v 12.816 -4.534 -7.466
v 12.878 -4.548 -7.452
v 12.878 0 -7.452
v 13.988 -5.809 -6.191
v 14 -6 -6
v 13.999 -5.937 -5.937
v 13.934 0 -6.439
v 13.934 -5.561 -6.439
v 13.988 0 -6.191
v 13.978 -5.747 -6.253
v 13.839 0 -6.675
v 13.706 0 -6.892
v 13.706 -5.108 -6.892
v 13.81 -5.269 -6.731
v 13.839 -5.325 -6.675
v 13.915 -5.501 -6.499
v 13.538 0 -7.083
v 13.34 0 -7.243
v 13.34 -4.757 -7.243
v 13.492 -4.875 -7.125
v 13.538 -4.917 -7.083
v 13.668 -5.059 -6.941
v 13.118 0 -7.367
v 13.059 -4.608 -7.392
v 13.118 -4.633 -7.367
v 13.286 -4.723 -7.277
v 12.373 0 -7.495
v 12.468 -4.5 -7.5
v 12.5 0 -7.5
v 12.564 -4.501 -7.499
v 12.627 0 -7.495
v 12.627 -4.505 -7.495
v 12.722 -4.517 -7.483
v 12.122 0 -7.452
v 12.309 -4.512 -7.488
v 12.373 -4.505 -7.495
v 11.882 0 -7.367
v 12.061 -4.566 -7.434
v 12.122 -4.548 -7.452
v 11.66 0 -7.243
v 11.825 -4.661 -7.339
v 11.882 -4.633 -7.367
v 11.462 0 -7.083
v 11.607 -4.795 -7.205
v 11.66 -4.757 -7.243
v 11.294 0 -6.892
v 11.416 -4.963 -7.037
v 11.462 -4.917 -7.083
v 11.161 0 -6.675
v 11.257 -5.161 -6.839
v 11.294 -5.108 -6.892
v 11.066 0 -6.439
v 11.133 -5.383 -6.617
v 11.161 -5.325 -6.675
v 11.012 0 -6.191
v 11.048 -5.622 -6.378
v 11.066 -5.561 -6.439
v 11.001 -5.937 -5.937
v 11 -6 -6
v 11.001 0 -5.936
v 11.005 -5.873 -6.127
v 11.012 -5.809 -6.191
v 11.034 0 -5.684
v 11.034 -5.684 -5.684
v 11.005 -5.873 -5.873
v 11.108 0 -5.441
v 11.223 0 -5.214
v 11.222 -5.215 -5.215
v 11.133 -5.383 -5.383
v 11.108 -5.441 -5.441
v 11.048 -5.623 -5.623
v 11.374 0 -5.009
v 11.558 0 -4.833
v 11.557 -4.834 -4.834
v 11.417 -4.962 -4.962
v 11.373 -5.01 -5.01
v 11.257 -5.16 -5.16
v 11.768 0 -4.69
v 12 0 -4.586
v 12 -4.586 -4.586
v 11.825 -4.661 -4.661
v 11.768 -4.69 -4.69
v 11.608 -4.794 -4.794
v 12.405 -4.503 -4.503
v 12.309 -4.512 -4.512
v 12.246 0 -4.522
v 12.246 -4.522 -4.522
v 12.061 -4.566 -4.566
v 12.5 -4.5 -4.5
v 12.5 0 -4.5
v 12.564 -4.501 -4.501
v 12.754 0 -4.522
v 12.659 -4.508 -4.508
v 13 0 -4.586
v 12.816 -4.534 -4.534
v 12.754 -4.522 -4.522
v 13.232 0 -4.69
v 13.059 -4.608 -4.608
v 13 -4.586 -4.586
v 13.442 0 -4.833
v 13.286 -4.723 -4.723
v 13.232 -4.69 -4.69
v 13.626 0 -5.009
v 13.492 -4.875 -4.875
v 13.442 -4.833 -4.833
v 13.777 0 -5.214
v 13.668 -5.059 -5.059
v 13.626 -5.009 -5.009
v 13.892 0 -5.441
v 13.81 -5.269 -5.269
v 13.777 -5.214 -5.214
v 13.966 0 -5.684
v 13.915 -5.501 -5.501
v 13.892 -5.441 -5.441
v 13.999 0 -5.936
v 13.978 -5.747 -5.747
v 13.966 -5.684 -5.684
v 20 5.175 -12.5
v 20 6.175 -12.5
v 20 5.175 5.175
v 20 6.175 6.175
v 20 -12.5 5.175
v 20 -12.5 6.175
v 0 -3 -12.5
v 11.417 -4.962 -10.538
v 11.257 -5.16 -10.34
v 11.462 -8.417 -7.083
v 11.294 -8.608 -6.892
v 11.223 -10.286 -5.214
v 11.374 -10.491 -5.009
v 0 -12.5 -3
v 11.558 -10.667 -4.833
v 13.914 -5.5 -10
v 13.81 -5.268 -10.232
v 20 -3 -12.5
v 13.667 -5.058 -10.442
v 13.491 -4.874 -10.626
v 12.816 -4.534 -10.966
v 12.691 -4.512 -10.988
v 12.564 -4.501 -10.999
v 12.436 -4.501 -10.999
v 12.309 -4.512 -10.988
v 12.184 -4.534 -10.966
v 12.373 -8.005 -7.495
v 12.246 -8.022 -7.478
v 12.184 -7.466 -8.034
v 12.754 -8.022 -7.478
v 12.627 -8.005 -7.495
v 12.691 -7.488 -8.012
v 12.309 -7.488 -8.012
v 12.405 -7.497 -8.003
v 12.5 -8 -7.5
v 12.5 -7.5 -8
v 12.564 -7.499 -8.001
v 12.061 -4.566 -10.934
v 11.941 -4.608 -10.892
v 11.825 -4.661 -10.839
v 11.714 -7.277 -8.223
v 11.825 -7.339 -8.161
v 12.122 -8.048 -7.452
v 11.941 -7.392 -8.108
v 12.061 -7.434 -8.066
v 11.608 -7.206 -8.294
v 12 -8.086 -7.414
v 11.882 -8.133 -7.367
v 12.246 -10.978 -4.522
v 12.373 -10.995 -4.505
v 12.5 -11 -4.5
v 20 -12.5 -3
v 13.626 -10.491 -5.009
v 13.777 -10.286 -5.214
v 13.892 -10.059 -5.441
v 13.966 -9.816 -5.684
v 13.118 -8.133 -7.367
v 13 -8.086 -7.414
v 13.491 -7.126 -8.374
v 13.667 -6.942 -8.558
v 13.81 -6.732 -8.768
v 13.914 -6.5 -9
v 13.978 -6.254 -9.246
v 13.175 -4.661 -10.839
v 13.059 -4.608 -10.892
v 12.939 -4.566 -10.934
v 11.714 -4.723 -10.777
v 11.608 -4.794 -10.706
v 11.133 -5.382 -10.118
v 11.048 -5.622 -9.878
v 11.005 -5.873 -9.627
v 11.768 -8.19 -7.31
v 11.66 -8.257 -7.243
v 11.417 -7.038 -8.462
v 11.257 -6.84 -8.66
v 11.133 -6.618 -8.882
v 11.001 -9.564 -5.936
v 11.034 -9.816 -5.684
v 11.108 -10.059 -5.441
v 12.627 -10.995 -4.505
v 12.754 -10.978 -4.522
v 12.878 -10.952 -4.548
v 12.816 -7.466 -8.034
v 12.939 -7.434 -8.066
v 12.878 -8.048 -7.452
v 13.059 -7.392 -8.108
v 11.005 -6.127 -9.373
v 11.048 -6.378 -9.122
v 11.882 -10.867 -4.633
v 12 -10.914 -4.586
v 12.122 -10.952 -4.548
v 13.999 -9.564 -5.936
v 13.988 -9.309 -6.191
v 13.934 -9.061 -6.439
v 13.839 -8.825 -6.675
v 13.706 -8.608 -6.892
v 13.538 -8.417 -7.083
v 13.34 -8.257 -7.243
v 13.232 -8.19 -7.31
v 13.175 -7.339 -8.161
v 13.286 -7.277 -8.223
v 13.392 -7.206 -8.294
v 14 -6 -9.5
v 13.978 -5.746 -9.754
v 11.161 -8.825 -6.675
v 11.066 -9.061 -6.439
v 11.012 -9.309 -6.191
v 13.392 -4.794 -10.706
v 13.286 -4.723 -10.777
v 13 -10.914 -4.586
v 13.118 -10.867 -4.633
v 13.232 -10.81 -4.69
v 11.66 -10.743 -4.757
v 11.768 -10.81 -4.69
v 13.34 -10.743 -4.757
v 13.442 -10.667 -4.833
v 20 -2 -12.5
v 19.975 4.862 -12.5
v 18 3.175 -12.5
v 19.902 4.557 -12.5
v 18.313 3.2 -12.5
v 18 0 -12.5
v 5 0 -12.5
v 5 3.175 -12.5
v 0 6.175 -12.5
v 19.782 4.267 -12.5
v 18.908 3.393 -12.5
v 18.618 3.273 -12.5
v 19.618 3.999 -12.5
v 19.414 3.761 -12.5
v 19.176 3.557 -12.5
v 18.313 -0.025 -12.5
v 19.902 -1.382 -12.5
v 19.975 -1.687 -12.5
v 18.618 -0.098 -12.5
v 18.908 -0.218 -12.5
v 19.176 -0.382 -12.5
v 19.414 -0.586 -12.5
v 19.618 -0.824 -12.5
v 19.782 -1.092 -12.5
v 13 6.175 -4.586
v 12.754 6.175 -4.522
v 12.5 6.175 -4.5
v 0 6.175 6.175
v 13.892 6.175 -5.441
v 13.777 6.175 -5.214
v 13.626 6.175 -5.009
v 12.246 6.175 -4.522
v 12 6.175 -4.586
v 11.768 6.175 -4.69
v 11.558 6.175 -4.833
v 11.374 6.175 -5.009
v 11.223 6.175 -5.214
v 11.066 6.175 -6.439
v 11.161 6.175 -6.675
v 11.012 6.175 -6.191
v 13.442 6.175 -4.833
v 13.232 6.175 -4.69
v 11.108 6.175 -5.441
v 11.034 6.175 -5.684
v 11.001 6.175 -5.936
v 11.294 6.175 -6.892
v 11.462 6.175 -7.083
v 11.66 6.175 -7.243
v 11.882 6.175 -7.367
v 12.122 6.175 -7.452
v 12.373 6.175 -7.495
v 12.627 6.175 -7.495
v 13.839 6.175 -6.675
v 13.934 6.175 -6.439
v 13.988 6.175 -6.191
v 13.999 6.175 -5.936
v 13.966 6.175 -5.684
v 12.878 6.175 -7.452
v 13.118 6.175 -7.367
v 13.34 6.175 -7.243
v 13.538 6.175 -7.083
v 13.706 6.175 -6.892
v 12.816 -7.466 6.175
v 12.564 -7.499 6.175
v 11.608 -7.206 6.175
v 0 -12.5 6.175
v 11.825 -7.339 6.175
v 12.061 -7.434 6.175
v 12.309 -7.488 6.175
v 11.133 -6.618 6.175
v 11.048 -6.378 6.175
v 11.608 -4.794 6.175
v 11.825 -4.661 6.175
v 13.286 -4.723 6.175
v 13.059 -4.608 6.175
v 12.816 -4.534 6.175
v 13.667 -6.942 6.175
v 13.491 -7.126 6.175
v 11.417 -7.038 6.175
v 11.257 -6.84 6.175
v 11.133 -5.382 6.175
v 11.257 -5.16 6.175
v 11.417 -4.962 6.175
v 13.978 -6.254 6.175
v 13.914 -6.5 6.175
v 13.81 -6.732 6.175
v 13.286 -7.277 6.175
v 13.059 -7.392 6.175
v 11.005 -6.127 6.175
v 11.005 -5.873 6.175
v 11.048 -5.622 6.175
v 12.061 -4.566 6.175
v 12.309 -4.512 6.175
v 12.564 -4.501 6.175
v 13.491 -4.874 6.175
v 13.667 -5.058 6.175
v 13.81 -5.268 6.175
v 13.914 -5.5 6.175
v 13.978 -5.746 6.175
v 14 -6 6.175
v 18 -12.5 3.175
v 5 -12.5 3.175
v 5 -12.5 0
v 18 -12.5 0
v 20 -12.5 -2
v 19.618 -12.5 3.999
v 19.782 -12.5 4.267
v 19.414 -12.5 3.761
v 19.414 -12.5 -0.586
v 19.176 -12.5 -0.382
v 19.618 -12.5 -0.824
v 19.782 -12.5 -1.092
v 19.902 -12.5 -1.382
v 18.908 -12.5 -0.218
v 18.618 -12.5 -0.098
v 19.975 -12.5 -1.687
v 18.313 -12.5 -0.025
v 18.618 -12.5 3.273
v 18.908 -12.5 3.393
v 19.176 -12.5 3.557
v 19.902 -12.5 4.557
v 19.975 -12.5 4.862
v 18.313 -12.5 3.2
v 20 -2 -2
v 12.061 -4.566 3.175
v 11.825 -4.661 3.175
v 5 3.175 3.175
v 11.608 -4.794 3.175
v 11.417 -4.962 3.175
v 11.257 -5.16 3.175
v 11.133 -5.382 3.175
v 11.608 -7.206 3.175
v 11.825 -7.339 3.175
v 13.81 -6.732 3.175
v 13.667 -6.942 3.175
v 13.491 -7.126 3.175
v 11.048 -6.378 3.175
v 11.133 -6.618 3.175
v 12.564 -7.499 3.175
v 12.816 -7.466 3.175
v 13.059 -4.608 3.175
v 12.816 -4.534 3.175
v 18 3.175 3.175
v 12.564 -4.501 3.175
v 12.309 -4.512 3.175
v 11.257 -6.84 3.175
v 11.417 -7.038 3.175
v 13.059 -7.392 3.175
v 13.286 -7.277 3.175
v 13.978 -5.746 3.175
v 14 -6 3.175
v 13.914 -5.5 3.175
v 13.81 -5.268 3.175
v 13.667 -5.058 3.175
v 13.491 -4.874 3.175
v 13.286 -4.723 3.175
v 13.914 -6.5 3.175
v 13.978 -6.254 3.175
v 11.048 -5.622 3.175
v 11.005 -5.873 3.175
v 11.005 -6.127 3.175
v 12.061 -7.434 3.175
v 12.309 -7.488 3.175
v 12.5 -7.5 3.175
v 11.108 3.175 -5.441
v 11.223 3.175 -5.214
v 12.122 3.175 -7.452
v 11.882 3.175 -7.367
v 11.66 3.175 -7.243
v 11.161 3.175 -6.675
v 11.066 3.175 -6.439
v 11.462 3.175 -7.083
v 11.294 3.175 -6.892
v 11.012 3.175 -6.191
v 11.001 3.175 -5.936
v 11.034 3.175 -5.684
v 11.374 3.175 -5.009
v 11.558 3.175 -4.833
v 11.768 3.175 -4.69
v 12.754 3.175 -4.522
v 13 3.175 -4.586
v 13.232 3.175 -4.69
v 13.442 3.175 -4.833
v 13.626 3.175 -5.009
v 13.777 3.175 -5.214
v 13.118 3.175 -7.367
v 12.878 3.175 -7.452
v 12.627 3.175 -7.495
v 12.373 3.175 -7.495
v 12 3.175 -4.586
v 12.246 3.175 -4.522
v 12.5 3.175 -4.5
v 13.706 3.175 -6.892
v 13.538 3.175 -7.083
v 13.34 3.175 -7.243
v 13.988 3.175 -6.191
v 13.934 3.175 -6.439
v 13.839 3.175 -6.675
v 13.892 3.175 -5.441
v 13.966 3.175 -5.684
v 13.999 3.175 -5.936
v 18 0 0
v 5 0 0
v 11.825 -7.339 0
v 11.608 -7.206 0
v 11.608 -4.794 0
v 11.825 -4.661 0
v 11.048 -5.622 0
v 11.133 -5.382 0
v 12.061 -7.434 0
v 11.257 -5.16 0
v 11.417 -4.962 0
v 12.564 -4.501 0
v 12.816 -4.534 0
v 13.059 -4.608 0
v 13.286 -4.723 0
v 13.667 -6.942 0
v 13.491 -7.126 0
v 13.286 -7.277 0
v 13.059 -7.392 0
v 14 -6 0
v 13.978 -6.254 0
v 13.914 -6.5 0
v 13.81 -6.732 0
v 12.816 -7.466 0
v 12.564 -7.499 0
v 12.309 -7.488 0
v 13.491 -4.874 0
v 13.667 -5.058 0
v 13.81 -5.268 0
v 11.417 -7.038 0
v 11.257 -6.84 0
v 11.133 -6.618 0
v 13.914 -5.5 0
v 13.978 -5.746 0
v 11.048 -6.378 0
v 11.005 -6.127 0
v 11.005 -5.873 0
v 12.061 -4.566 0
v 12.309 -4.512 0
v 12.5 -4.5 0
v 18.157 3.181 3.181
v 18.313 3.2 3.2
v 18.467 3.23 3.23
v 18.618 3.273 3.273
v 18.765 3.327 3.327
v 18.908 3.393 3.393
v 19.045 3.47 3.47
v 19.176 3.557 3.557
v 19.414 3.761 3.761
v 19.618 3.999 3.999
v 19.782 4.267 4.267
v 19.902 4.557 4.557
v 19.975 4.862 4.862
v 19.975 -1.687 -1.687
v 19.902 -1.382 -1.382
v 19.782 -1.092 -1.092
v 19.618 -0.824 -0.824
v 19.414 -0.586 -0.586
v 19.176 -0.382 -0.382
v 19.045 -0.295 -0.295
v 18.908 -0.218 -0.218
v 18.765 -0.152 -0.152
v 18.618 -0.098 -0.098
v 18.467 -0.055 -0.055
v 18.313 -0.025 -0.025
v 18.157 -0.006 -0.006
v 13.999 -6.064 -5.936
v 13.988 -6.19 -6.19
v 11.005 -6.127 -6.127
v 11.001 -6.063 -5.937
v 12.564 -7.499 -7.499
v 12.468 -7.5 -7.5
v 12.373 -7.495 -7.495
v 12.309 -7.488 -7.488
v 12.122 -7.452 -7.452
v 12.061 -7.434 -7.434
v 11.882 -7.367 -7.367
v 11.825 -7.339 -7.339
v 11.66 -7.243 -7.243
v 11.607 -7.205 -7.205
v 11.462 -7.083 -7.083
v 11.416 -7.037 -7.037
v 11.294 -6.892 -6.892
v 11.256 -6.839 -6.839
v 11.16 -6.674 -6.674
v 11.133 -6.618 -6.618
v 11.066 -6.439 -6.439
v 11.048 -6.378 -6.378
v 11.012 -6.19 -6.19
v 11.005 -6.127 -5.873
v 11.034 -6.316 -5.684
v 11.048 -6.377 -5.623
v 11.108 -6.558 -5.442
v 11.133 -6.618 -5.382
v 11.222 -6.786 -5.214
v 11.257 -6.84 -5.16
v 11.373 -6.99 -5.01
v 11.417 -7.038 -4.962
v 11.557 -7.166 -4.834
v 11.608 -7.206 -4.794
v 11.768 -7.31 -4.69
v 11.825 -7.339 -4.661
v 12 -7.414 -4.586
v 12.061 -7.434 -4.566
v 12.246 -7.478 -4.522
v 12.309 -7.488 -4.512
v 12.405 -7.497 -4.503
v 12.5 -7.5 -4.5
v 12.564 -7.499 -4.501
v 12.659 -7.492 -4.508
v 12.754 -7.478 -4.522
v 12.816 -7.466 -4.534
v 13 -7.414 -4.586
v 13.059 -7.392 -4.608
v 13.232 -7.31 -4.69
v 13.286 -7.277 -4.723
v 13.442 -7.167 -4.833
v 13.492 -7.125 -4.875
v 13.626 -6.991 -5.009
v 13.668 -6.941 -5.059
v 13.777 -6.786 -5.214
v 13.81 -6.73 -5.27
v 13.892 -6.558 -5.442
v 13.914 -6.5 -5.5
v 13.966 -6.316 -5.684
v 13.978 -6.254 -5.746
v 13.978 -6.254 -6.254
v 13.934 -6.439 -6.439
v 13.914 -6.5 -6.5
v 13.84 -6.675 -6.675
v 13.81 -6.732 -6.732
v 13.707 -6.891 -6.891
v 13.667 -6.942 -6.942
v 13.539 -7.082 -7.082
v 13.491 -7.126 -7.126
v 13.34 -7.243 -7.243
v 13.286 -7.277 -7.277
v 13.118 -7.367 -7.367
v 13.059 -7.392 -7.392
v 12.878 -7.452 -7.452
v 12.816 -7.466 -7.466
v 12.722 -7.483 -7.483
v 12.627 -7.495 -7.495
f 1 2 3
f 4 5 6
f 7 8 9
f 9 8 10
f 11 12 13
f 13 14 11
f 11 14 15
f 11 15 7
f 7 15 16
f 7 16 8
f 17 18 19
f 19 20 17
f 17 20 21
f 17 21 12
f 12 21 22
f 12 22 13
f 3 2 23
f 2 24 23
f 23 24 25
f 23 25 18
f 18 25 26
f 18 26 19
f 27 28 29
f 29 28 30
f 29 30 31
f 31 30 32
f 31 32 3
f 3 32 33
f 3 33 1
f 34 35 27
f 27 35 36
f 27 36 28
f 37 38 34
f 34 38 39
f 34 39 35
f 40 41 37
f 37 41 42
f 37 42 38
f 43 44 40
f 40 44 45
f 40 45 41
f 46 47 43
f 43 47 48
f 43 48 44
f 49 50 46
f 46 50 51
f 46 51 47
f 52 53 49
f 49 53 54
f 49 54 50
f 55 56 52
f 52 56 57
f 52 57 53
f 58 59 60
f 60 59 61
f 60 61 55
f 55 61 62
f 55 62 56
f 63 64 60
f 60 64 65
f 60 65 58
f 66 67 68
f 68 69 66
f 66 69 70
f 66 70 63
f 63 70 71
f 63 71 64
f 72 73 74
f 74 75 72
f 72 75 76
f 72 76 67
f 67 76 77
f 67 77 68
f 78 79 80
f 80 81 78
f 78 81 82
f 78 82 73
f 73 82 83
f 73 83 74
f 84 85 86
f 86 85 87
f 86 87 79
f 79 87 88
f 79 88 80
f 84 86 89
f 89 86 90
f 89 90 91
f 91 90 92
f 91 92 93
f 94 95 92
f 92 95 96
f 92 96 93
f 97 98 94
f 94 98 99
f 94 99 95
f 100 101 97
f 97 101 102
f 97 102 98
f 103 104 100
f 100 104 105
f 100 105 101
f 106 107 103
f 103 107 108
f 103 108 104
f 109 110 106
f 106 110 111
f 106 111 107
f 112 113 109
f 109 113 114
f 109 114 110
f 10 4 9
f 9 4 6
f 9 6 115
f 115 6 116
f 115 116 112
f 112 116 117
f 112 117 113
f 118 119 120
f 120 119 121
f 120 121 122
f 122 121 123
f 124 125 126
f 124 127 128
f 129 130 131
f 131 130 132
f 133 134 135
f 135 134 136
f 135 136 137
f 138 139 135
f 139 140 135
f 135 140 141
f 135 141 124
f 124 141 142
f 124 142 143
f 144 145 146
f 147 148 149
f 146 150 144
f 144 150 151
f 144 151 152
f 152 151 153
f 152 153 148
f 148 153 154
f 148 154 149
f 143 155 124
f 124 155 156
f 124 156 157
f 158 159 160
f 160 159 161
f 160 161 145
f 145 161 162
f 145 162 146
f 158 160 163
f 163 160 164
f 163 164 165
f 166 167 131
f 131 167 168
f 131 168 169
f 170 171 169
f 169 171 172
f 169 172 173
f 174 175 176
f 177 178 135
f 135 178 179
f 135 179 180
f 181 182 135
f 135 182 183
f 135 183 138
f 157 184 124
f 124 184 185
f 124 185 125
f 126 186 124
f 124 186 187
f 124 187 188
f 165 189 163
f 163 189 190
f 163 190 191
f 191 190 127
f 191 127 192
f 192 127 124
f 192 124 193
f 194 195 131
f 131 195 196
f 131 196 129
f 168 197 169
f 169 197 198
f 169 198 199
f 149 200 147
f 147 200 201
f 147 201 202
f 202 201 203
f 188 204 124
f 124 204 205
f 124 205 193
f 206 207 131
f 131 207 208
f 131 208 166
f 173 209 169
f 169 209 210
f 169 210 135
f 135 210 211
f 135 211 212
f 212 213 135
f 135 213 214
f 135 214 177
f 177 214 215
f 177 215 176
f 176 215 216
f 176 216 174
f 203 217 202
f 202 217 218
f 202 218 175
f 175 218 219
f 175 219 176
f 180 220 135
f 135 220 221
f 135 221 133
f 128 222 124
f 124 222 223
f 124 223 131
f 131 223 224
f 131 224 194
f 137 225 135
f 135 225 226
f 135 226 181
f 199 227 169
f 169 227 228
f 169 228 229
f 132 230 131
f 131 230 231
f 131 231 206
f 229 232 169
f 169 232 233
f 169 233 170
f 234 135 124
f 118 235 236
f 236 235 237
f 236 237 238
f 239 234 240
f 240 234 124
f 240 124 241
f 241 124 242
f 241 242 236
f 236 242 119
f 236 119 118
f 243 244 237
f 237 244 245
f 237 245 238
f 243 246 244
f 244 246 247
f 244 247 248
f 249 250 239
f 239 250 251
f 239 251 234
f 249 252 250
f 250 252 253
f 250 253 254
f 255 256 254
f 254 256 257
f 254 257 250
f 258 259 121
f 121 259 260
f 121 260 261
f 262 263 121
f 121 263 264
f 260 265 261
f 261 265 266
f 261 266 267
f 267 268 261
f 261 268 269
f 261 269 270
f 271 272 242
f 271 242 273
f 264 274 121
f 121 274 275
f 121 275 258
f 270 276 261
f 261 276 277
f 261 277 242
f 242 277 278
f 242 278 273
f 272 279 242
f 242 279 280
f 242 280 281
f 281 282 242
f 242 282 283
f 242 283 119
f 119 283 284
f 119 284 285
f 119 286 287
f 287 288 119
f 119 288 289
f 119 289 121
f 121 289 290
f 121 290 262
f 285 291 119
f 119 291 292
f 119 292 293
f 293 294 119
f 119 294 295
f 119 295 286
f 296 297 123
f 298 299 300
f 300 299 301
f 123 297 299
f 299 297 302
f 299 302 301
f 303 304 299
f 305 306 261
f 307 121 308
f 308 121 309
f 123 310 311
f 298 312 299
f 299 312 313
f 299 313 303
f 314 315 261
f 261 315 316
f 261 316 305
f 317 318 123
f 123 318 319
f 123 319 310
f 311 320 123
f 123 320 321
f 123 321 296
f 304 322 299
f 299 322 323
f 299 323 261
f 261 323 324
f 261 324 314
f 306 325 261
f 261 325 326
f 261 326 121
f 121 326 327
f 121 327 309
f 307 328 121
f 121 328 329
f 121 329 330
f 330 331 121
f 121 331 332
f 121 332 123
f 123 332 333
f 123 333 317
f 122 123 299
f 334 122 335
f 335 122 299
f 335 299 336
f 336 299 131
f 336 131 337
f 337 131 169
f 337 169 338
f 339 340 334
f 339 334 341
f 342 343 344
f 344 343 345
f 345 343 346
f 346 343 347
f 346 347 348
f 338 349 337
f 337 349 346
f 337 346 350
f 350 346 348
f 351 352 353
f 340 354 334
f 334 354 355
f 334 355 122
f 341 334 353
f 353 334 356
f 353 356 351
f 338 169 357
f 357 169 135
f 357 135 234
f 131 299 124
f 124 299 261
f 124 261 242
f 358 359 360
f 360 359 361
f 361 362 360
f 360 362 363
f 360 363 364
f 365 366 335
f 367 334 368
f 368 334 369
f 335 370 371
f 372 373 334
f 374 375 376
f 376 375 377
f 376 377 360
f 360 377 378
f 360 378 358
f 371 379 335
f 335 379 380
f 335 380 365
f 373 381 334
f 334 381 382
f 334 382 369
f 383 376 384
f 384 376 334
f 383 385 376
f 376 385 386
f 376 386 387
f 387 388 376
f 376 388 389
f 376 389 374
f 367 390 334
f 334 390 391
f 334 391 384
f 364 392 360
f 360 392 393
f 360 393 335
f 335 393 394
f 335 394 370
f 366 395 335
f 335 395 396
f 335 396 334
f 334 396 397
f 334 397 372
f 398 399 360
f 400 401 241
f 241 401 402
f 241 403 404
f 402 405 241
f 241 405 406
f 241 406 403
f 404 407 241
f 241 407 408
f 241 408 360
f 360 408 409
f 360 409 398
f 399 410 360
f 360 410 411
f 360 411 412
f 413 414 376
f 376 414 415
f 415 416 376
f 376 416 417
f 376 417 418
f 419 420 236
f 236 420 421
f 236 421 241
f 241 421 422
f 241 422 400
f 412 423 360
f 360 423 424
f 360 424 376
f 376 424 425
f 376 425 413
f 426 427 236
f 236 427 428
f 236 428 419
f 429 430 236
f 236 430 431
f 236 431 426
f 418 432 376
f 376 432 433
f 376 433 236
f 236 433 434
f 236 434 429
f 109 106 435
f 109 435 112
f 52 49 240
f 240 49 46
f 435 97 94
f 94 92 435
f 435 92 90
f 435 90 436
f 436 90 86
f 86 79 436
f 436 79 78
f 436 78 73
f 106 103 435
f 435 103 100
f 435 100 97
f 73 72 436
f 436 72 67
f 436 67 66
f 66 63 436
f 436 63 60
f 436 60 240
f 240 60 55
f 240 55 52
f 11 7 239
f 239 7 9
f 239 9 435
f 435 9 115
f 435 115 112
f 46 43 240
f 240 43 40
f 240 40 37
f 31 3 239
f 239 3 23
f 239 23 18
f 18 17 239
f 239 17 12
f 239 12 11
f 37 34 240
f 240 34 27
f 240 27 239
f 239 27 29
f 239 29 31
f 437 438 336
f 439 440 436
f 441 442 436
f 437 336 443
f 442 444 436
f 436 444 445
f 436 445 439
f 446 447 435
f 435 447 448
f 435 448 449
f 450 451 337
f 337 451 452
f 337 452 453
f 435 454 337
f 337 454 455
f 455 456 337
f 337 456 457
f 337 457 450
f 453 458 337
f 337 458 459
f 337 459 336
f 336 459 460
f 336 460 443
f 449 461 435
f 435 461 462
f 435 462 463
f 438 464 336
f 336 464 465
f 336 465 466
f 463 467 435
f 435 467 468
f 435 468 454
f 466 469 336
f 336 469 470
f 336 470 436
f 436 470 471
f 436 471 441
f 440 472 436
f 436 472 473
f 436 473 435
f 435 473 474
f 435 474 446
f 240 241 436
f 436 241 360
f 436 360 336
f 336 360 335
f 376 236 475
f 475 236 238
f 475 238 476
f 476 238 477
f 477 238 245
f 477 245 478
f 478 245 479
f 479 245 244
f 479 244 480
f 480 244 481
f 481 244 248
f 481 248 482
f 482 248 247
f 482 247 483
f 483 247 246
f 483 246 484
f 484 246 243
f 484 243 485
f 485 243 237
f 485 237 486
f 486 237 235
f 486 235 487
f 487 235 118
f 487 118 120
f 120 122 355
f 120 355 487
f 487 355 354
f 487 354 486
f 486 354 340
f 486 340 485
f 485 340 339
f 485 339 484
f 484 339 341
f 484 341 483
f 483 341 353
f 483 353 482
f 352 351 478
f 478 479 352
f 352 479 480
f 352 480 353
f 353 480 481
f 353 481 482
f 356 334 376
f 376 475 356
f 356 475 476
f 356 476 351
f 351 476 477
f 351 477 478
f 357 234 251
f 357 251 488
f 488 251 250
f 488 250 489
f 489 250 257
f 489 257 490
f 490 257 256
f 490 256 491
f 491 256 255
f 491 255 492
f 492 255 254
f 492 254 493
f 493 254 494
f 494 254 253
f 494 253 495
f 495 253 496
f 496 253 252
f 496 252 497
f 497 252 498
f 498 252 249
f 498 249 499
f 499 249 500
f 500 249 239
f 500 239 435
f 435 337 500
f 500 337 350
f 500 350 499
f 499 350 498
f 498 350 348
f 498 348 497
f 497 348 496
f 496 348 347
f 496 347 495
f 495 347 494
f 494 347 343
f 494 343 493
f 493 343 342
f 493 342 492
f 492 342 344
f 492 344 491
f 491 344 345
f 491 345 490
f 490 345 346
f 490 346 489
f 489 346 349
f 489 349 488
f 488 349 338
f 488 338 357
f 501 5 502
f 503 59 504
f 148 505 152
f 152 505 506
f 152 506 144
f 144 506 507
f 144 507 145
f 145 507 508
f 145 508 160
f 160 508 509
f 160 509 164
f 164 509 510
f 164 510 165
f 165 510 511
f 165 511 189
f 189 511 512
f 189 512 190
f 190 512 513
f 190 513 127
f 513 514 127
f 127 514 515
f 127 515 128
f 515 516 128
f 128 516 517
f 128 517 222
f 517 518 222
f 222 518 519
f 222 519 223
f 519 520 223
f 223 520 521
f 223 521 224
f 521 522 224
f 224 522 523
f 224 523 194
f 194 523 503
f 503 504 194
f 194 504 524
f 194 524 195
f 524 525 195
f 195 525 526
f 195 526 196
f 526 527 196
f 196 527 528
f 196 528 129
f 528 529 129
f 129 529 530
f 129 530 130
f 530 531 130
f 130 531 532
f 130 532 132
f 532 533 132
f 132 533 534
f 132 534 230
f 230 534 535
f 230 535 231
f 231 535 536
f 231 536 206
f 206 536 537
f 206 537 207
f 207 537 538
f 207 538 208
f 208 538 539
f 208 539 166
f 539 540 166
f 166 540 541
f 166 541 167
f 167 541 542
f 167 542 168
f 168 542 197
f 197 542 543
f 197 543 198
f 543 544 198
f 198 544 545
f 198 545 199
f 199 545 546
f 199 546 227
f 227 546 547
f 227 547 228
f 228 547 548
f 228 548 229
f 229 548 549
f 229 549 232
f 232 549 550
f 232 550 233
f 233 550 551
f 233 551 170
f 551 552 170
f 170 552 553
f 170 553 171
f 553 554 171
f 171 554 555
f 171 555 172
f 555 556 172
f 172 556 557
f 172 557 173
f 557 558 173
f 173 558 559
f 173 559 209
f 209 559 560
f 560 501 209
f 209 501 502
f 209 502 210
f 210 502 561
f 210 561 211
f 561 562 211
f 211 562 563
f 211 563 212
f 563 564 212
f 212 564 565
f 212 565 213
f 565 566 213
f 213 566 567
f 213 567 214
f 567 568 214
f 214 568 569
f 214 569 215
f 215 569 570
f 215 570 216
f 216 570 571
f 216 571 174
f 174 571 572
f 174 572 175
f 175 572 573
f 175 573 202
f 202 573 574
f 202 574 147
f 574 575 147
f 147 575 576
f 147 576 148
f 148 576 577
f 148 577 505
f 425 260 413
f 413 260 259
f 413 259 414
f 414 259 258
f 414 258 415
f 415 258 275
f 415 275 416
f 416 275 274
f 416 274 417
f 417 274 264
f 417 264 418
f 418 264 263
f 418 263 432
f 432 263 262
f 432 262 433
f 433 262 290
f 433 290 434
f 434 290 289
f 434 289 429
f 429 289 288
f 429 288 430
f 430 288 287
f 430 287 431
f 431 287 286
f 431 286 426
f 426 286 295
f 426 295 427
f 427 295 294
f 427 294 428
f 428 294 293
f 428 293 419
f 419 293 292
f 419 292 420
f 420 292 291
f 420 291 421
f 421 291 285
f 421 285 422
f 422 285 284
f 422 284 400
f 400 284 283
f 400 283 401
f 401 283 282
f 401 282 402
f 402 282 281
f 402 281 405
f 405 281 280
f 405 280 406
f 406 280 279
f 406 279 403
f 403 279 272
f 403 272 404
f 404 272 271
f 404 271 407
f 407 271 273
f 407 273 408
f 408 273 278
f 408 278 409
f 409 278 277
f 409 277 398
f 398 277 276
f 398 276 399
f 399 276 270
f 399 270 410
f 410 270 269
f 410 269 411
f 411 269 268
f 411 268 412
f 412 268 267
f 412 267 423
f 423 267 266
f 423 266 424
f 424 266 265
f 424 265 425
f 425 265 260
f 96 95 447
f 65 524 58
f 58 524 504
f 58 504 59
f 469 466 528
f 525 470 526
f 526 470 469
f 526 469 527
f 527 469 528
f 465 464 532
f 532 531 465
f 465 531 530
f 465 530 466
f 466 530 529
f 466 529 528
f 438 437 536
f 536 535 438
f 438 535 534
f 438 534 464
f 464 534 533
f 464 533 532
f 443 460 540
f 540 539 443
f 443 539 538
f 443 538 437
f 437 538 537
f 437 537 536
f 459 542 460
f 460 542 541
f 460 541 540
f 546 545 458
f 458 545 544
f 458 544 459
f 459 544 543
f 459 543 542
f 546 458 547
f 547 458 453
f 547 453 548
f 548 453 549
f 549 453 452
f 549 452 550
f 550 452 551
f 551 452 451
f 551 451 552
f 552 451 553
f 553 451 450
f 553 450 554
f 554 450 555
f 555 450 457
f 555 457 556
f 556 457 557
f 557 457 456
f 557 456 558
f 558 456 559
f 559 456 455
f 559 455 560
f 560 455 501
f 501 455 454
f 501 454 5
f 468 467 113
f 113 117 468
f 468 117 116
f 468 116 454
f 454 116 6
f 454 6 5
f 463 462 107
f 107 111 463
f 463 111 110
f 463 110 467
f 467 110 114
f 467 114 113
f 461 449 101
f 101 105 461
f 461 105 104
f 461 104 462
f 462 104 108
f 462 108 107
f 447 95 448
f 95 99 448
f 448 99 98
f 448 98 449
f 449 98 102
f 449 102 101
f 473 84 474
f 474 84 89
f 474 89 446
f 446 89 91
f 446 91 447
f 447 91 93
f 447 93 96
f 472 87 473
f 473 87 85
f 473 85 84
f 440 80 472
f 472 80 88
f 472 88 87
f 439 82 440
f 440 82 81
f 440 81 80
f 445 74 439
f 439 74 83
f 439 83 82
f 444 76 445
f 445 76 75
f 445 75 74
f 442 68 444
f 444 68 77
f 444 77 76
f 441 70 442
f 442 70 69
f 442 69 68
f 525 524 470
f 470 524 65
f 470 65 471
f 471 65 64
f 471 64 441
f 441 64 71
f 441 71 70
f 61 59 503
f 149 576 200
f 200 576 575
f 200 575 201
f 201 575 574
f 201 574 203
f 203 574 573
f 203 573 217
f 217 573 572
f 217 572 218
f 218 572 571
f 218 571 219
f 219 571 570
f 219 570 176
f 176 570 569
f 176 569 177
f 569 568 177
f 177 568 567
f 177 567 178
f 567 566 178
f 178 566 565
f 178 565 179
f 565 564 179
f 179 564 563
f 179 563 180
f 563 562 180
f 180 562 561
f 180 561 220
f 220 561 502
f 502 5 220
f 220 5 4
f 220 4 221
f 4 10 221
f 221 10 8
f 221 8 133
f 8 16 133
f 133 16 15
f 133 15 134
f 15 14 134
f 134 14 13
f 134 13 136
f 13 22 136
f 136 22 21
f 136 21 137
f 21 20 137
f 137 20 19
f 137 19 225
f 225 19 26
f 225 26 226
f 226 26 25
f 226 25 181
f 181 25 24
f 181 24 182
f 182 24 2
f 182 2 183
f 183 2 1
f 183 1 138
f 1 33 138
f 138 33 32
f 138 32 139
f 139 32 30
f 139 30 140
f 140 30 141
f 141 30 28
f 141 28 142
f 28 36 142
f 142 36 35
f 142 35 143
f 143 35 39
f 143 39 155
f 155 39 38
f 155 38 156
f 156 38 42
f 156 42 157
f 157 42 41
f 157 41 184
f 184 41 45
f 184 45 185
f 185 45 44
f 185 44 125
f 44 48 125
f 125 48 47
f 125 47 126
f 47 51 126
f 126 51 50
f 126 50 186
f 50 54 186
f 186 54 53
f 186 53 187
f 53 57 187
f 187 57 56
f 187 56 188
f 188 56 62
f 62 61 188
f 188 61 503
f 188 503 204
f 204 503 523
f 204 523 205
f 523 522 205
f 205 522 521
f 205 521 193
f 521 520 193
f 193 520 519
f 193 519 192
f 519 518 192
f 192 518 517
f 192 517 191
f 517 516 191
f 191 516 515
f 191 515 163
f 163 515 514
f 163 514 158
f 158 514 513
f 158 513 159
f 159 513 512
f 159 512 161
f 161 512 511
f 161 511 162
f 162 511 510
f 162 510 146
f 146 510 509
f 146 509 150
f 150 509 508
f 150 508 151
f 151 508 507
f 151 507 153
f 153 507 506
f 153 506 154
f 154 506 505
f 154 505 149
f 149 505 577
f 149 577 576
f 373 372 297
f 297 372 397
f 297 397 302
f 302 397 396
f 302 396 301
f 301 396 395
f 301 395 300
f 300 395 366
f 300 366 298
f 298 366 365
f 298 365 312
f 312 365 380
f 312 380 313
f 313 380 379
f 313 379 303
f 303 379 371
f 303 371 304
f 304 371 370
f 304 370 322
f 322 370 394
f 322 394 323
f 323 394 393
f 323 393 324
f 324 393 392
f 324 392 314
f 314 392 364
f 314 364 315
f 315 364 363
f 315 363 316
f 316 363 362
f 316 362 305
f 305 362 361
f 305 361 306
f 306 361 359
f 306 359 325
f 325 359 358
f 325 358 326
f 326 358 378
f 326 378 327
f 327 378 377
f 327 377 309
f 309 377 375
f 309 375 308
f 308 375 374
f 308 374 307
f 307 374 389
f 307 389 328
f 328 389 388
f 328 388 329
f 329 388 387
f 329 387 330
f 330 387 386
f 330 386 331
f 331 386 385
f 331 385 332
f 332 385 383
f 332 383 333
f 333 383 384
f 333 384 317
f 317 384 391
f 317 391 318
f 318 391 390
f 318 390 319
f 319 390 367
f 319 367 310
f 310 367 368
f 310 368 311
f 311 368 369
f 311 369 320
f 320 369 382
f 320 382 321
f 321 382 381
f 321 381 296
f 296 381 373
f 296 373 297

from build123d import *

# Parameters (mm, degrees)
BOSS_EXTRUDE1_DEPTH = 20
CUT_EXTRUDE1_DEPTH  = 15
FILLET1_R           = 2
SKETCH3_R           = 1.5
CUT_EXTRUDE2_DEPTH  = 31.083311404
SKETCH4_R           = 1.5
CUT_EXTRUDE3_DEPTH  = 31.083311404


with BuildPart() as part:
    # Sketch1 → Boss-Extrude1 (new body)
    with BuildSketch(Plane(origin=(0, 0, 0), x_dir=(0, 0, -1), z_dir=(1, 0, 0))):
        Polygon((0, -12.5), (-3.175, -12.5), (-6.175, -12.5), (-6.175, 6.175), (12.5, 6.175), (12.5, 3.175), (12.5, 0), (12.5, -3), (3, -12.5), align=None)
    extrude(amount=BOSS_EXTRUDE1_DEPTH)

    # Sketch2 → Cut-Extrude1 (cut)
    with BuildSketch(Plane(origin=(20, 0, 0), x_dir=(0, 0, -1), z_dir=(1, 0, 0))):
        Polygon((-3.175, -12.5), (0, -12.5), (0, 0), (12.5, 0), (12.5, 3.175), (-3.175, 3.175), align=None)
    extrude(amount=-CUT_EXTRUDE1_DEPTH, mode=Mode.SUBTRACT)

    # Fillet1
    fillet1_edges = [part.edges().sort_by_distance(p)[0] for p in [
        (20, -4.6625, 3.175),
        (20, -6.25, 0),
        (20, 0, -6.25),
        (20, 3.175, -4.6625),
    ]]
    fillet(fillet1_edges, radius=FILLET1_R)

    # Sketch3 → Cut-Extrude2 (cut, through all)
    with BuildSketch(Plane(origin=(0, 6.175, 0), x_dir=(1, 0, 0), z_dir=(0, 1, 0))):
        with Locations(Location((12.5, 6, 0), (0, 0, 90))):
            Circle(SKETCH3_R)
    extrude(amount=-CUT_EXTRUDE2_DEPTH, mode=Mode.SUBTRACT)

    # Sketch4 → Cut-Extrude3 (cut, through all)
    with BuildSketch(Plane.XY.offset(6.175)):
        with Locations((12.5, -6)):
            Circle(SKETCH4_R)
    extrude(amount=-CUT_EXTRUDE3_DEPTH, mode=Mode.SUBTRACT)


solid = part.part
